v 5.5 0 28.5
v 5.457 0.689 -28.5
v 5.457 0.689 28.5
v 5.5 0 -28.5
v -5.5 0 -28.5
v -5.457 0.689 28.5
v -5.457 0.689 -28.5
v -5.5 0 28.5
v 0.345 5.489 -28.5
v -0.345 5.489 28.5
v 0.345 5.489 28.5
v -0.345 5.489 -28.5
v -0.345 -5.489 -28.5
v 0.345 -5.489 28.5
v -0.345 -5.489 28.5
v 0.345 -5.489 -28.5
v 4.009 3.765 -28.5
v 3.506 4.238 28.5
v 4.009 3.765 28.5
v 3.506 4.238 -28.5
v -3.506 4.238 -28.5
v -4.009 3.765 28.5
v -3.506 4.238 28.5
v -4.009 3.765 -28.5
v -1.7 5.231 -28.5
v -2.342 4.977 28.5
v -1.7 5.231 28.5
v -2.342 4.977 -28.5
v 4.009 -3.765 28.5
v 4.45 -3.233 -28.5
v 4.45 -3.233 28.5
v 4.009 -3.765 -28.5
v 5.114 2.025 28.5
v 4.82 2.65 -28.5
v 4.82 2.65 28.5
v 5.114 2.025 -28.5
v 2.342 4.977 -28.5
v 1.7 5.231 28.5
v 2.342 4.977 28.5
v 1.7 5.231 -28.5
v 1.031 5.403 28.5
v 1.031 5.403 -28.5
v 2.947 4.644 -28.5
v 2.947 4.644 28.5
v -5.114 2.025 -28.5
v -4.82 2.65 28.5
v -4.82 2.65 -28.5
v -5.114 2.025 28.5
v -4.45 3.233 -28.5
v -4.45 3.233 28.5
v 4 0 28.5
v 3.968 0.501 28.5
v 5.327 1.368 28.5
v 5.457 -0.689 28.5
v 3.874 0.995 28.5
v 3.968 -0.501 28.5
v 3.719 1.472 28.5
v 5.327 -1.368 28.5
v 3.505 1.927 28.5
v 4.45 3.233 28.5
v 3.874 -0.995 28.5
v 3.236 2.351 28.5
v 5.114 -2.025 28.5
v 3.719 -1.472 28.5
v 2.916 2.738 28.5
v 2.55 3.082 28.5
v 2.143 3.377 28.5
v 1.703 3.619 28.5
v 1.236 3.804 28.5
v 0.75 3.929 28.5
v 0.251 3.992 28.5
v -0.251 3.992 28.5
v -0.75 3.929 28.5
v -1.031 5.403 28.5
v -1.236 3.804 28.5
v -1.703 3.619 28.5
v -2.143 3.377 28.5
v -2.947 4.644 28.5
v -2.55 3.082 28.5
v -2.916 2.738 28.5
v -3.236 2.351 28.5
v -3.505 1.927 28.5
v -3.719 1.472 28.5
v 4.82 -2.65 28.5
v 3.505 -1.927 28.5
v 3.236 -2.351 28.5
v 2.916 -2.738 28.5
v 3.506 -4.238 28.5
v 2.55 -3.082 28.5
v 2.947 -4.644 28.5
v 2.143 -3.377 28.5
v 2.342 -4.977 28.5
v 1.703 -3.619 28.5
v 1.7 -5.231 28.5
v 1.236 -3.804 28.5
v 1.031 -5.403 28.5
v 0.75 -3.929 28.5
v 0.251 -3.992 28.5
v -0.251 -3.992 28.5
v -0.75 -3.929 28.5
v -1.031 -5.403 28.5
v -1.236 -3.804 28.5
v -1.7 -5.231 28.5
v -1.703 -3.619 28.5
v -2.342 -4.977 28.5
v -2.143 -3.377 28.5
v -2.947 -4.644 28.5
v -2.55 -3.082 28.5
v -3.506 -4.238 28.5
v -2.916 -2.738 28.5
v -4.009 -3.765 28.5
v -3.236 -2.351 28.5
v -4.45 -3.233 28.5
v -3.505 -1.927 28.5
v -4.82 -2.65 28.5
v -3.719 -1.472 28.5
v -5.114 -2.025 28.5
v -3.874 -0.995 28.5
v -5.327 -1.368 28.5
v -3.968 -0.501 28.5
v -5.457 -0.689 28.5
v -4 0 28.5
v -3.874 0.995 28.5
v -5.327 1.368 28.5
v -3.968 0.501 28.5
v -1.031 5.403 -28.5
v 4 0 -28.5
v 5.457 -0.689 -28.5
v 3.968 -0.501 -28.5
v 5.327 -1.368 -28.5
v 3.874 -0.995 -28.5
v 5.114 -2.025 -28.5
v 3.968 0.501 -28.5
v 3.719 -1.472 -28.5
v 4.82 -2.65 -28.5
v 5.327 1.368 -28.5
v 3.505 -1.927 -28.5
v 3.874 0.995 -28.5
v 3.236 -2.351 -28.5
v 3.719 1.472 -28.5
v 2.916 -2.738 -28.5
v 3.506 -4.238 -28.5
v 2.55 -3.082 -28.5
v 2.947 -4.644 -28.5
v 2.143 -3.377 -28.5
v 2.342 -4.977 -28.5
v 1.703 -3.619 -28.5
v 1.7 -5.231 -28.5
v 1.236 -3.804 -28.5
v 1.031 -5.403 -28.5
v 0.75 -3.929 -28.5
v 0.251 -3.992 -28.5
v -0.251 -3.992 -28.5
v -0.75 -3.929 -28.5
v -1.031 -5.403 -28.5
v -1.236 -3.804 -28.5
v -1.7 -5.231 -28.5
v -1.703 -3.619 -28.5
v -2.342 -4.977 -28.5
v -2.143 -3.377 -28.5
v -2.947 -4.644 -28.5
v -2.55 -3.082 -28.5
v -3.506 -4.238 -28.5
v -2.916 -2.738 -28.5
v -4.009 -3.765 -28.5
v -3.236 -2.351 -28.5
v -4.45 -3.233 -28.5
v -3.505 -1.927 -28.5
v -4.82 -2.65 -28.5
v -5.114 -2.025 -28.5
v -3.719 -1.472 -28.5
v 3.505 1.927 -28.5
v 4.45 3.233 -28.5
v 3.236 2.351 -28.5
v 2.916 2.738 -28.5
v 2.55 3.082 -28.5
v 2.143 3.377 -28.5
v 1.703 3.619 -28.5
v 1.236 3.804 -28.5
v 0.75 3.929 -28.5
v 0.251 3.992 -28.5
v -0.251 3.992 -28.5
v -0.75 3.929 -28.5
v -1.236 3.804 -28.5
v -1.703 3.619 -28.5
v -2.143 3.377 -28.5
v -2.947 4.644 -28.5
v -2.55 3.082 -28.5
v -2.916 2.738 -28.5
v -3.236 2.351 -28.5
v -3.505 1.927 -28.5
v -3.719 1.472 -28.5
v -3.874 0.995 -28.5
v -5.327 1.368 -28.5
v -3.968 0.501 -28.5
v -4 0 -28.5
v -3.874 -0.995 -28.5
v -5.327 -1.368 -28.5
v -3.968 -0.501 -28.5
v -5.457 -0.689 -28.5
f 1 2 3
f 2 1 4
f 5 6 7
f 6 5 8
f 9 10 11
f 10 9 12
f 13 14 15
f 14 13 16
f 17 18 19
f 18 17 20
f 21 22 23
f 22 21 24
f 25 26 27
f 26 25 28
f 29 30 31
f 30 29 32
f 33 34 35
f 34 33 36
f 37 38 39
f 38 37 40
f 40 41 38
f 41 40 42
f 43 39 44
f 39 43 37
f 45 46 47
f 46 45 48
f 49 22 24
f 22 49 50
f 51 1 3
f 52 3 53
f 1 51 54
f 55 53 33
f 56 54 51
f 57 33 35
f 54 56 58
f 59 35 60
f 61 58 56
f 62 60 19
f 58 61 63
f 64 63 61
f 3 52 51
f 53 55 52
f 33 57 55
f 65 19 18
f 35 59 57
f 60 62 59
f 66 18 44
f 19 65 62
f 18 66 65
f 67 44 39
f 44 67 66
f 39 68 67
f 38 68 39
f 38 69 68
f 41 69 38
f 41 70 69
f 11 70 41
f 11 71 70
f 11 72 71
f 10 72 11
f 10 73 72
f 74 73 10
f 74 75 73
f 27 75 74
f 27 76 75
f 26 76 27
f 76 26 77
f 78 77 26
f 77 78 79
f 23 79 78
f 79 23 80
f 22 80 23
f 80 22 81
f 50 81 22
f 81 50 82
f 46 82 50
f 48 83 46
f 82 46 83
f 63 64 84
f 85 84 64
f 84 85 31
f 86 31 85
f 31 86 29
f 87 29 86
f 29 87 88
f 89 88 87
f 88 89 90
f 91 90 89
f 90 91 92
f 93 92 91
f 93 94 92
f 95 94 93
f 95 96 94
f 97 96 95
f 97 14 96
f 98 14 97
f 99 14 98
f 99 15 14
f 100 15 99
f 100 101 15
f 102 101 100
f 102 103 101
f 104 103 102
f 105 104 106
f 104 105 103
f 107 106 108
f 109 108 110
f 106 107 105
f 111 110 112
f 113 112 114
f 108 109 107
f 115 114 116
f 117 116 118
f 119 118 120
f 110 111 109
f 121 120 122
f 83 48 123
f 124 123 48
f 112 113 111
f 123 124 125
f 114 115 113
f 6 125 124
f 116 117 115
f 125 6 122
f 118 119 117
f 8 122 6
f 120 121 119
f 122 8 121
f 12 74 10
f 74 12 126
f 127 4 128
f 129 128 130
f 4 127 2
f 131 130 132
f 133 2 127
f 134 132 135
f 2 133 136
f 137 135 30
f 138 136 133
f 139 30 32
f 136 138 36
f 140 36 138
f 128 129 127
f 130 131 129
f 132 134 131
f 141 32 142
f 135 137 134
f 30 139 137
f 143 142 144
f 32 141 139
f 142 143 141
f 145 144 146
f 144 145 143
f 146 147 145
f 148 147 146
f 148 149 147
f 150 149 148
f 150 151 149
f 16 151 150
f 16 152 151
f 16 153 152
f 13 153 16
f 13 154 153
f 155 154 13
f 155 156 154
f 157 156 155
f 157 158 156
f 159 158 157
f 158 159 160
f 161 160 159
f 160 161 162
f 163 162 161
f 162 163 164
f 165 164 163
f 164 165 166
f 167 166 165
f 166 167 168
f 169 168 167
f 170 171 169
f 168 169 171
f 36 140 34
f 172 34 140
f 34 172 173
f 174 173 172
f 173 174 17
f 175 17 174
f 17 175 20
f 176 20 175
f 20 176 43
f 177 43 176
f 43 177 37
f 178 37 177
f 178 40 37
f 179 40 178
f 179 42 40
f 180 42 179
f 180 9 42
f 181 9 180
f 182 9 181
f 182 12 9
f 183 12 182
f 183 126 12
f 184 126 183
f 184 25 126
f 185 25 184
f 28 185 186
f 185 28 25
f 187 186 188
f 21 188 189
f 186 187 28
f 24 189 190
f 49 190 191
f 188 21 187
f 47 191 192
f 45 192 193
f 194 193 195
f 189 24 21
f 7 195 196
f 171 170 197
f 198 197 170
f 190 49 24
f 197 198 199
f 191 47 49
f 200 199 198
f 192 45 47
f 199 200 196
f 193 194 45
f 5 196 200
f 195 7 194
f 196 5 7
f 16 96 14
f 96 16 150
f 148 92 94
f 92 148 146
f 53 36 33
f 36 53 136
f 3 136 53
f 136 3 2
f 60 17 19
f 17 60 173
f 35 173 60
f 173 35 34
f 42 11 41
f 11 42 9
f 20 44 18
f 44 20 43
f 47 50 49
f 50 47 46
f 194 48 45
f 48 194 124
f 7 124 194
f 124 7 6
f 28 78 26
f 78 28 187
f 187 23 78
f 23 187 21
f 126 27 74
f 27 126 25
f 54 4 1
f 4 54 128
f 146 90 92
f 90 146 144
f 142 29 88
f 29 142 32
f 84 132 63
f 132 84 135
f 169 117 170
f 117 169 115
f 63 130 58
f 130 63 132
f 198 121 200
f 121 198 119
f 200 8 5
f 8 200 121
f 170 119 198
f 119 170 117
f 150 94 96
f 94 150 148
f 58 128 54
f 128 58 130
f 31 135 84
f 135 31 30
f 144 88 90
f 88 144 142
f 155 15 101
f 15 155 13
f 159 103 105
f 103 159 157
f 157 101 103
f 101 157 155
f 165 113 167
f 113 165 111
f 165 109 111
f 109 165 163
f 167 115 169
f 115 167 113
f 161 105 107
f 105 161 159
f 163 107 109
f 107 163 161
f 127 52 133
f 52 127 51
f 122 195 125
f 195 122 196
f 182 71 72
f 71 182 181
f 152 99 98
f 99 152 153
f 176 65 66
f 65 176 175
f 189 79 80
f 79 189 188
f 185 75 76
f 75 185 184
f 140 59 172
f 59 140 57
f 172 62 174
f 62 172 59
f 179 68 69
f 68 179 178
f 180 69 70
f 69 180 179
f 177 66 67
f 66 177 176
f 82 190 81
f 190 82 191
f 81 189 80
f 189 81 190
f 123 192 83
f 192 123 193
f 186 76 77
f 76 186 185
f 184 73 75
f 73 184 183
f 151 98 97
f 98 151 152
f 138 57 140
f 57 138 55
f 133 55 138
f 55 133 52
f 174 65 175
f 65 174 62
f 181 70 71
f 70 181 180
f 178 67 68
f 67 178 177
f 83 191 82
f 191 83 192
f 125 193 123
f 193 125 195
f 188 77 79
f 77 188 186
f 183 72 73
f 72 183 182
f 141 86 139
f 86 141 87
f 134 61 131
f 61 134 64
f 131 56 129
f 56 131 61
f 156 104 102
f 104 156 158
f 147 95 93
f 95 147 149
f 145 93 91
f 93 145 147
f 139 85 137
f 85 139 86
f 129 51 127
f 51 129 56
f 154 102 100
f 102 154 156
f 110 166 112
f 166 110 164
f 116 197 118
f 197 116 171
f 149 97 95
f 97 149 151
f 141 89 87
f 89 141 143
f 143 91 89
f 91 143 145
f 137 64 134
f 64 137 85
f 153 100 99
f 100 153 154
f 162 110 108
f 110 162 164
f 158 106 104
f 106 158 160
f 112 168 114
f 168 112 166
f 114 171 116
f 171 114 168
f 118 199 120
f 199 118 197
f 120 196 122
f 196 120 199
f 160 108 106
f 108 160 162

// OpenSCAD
$fn = 50;


difference() {
	union() {
		translate(v = [0, 0, -28.5000000000]) {
			cylinder(h = 57, r = 5.5000000000);
		}
	}
	union() {
		translate(v = [0, 0, -100.0000000000]) {
			cylinder(h = 200, r = 4);
		}
	}
}
